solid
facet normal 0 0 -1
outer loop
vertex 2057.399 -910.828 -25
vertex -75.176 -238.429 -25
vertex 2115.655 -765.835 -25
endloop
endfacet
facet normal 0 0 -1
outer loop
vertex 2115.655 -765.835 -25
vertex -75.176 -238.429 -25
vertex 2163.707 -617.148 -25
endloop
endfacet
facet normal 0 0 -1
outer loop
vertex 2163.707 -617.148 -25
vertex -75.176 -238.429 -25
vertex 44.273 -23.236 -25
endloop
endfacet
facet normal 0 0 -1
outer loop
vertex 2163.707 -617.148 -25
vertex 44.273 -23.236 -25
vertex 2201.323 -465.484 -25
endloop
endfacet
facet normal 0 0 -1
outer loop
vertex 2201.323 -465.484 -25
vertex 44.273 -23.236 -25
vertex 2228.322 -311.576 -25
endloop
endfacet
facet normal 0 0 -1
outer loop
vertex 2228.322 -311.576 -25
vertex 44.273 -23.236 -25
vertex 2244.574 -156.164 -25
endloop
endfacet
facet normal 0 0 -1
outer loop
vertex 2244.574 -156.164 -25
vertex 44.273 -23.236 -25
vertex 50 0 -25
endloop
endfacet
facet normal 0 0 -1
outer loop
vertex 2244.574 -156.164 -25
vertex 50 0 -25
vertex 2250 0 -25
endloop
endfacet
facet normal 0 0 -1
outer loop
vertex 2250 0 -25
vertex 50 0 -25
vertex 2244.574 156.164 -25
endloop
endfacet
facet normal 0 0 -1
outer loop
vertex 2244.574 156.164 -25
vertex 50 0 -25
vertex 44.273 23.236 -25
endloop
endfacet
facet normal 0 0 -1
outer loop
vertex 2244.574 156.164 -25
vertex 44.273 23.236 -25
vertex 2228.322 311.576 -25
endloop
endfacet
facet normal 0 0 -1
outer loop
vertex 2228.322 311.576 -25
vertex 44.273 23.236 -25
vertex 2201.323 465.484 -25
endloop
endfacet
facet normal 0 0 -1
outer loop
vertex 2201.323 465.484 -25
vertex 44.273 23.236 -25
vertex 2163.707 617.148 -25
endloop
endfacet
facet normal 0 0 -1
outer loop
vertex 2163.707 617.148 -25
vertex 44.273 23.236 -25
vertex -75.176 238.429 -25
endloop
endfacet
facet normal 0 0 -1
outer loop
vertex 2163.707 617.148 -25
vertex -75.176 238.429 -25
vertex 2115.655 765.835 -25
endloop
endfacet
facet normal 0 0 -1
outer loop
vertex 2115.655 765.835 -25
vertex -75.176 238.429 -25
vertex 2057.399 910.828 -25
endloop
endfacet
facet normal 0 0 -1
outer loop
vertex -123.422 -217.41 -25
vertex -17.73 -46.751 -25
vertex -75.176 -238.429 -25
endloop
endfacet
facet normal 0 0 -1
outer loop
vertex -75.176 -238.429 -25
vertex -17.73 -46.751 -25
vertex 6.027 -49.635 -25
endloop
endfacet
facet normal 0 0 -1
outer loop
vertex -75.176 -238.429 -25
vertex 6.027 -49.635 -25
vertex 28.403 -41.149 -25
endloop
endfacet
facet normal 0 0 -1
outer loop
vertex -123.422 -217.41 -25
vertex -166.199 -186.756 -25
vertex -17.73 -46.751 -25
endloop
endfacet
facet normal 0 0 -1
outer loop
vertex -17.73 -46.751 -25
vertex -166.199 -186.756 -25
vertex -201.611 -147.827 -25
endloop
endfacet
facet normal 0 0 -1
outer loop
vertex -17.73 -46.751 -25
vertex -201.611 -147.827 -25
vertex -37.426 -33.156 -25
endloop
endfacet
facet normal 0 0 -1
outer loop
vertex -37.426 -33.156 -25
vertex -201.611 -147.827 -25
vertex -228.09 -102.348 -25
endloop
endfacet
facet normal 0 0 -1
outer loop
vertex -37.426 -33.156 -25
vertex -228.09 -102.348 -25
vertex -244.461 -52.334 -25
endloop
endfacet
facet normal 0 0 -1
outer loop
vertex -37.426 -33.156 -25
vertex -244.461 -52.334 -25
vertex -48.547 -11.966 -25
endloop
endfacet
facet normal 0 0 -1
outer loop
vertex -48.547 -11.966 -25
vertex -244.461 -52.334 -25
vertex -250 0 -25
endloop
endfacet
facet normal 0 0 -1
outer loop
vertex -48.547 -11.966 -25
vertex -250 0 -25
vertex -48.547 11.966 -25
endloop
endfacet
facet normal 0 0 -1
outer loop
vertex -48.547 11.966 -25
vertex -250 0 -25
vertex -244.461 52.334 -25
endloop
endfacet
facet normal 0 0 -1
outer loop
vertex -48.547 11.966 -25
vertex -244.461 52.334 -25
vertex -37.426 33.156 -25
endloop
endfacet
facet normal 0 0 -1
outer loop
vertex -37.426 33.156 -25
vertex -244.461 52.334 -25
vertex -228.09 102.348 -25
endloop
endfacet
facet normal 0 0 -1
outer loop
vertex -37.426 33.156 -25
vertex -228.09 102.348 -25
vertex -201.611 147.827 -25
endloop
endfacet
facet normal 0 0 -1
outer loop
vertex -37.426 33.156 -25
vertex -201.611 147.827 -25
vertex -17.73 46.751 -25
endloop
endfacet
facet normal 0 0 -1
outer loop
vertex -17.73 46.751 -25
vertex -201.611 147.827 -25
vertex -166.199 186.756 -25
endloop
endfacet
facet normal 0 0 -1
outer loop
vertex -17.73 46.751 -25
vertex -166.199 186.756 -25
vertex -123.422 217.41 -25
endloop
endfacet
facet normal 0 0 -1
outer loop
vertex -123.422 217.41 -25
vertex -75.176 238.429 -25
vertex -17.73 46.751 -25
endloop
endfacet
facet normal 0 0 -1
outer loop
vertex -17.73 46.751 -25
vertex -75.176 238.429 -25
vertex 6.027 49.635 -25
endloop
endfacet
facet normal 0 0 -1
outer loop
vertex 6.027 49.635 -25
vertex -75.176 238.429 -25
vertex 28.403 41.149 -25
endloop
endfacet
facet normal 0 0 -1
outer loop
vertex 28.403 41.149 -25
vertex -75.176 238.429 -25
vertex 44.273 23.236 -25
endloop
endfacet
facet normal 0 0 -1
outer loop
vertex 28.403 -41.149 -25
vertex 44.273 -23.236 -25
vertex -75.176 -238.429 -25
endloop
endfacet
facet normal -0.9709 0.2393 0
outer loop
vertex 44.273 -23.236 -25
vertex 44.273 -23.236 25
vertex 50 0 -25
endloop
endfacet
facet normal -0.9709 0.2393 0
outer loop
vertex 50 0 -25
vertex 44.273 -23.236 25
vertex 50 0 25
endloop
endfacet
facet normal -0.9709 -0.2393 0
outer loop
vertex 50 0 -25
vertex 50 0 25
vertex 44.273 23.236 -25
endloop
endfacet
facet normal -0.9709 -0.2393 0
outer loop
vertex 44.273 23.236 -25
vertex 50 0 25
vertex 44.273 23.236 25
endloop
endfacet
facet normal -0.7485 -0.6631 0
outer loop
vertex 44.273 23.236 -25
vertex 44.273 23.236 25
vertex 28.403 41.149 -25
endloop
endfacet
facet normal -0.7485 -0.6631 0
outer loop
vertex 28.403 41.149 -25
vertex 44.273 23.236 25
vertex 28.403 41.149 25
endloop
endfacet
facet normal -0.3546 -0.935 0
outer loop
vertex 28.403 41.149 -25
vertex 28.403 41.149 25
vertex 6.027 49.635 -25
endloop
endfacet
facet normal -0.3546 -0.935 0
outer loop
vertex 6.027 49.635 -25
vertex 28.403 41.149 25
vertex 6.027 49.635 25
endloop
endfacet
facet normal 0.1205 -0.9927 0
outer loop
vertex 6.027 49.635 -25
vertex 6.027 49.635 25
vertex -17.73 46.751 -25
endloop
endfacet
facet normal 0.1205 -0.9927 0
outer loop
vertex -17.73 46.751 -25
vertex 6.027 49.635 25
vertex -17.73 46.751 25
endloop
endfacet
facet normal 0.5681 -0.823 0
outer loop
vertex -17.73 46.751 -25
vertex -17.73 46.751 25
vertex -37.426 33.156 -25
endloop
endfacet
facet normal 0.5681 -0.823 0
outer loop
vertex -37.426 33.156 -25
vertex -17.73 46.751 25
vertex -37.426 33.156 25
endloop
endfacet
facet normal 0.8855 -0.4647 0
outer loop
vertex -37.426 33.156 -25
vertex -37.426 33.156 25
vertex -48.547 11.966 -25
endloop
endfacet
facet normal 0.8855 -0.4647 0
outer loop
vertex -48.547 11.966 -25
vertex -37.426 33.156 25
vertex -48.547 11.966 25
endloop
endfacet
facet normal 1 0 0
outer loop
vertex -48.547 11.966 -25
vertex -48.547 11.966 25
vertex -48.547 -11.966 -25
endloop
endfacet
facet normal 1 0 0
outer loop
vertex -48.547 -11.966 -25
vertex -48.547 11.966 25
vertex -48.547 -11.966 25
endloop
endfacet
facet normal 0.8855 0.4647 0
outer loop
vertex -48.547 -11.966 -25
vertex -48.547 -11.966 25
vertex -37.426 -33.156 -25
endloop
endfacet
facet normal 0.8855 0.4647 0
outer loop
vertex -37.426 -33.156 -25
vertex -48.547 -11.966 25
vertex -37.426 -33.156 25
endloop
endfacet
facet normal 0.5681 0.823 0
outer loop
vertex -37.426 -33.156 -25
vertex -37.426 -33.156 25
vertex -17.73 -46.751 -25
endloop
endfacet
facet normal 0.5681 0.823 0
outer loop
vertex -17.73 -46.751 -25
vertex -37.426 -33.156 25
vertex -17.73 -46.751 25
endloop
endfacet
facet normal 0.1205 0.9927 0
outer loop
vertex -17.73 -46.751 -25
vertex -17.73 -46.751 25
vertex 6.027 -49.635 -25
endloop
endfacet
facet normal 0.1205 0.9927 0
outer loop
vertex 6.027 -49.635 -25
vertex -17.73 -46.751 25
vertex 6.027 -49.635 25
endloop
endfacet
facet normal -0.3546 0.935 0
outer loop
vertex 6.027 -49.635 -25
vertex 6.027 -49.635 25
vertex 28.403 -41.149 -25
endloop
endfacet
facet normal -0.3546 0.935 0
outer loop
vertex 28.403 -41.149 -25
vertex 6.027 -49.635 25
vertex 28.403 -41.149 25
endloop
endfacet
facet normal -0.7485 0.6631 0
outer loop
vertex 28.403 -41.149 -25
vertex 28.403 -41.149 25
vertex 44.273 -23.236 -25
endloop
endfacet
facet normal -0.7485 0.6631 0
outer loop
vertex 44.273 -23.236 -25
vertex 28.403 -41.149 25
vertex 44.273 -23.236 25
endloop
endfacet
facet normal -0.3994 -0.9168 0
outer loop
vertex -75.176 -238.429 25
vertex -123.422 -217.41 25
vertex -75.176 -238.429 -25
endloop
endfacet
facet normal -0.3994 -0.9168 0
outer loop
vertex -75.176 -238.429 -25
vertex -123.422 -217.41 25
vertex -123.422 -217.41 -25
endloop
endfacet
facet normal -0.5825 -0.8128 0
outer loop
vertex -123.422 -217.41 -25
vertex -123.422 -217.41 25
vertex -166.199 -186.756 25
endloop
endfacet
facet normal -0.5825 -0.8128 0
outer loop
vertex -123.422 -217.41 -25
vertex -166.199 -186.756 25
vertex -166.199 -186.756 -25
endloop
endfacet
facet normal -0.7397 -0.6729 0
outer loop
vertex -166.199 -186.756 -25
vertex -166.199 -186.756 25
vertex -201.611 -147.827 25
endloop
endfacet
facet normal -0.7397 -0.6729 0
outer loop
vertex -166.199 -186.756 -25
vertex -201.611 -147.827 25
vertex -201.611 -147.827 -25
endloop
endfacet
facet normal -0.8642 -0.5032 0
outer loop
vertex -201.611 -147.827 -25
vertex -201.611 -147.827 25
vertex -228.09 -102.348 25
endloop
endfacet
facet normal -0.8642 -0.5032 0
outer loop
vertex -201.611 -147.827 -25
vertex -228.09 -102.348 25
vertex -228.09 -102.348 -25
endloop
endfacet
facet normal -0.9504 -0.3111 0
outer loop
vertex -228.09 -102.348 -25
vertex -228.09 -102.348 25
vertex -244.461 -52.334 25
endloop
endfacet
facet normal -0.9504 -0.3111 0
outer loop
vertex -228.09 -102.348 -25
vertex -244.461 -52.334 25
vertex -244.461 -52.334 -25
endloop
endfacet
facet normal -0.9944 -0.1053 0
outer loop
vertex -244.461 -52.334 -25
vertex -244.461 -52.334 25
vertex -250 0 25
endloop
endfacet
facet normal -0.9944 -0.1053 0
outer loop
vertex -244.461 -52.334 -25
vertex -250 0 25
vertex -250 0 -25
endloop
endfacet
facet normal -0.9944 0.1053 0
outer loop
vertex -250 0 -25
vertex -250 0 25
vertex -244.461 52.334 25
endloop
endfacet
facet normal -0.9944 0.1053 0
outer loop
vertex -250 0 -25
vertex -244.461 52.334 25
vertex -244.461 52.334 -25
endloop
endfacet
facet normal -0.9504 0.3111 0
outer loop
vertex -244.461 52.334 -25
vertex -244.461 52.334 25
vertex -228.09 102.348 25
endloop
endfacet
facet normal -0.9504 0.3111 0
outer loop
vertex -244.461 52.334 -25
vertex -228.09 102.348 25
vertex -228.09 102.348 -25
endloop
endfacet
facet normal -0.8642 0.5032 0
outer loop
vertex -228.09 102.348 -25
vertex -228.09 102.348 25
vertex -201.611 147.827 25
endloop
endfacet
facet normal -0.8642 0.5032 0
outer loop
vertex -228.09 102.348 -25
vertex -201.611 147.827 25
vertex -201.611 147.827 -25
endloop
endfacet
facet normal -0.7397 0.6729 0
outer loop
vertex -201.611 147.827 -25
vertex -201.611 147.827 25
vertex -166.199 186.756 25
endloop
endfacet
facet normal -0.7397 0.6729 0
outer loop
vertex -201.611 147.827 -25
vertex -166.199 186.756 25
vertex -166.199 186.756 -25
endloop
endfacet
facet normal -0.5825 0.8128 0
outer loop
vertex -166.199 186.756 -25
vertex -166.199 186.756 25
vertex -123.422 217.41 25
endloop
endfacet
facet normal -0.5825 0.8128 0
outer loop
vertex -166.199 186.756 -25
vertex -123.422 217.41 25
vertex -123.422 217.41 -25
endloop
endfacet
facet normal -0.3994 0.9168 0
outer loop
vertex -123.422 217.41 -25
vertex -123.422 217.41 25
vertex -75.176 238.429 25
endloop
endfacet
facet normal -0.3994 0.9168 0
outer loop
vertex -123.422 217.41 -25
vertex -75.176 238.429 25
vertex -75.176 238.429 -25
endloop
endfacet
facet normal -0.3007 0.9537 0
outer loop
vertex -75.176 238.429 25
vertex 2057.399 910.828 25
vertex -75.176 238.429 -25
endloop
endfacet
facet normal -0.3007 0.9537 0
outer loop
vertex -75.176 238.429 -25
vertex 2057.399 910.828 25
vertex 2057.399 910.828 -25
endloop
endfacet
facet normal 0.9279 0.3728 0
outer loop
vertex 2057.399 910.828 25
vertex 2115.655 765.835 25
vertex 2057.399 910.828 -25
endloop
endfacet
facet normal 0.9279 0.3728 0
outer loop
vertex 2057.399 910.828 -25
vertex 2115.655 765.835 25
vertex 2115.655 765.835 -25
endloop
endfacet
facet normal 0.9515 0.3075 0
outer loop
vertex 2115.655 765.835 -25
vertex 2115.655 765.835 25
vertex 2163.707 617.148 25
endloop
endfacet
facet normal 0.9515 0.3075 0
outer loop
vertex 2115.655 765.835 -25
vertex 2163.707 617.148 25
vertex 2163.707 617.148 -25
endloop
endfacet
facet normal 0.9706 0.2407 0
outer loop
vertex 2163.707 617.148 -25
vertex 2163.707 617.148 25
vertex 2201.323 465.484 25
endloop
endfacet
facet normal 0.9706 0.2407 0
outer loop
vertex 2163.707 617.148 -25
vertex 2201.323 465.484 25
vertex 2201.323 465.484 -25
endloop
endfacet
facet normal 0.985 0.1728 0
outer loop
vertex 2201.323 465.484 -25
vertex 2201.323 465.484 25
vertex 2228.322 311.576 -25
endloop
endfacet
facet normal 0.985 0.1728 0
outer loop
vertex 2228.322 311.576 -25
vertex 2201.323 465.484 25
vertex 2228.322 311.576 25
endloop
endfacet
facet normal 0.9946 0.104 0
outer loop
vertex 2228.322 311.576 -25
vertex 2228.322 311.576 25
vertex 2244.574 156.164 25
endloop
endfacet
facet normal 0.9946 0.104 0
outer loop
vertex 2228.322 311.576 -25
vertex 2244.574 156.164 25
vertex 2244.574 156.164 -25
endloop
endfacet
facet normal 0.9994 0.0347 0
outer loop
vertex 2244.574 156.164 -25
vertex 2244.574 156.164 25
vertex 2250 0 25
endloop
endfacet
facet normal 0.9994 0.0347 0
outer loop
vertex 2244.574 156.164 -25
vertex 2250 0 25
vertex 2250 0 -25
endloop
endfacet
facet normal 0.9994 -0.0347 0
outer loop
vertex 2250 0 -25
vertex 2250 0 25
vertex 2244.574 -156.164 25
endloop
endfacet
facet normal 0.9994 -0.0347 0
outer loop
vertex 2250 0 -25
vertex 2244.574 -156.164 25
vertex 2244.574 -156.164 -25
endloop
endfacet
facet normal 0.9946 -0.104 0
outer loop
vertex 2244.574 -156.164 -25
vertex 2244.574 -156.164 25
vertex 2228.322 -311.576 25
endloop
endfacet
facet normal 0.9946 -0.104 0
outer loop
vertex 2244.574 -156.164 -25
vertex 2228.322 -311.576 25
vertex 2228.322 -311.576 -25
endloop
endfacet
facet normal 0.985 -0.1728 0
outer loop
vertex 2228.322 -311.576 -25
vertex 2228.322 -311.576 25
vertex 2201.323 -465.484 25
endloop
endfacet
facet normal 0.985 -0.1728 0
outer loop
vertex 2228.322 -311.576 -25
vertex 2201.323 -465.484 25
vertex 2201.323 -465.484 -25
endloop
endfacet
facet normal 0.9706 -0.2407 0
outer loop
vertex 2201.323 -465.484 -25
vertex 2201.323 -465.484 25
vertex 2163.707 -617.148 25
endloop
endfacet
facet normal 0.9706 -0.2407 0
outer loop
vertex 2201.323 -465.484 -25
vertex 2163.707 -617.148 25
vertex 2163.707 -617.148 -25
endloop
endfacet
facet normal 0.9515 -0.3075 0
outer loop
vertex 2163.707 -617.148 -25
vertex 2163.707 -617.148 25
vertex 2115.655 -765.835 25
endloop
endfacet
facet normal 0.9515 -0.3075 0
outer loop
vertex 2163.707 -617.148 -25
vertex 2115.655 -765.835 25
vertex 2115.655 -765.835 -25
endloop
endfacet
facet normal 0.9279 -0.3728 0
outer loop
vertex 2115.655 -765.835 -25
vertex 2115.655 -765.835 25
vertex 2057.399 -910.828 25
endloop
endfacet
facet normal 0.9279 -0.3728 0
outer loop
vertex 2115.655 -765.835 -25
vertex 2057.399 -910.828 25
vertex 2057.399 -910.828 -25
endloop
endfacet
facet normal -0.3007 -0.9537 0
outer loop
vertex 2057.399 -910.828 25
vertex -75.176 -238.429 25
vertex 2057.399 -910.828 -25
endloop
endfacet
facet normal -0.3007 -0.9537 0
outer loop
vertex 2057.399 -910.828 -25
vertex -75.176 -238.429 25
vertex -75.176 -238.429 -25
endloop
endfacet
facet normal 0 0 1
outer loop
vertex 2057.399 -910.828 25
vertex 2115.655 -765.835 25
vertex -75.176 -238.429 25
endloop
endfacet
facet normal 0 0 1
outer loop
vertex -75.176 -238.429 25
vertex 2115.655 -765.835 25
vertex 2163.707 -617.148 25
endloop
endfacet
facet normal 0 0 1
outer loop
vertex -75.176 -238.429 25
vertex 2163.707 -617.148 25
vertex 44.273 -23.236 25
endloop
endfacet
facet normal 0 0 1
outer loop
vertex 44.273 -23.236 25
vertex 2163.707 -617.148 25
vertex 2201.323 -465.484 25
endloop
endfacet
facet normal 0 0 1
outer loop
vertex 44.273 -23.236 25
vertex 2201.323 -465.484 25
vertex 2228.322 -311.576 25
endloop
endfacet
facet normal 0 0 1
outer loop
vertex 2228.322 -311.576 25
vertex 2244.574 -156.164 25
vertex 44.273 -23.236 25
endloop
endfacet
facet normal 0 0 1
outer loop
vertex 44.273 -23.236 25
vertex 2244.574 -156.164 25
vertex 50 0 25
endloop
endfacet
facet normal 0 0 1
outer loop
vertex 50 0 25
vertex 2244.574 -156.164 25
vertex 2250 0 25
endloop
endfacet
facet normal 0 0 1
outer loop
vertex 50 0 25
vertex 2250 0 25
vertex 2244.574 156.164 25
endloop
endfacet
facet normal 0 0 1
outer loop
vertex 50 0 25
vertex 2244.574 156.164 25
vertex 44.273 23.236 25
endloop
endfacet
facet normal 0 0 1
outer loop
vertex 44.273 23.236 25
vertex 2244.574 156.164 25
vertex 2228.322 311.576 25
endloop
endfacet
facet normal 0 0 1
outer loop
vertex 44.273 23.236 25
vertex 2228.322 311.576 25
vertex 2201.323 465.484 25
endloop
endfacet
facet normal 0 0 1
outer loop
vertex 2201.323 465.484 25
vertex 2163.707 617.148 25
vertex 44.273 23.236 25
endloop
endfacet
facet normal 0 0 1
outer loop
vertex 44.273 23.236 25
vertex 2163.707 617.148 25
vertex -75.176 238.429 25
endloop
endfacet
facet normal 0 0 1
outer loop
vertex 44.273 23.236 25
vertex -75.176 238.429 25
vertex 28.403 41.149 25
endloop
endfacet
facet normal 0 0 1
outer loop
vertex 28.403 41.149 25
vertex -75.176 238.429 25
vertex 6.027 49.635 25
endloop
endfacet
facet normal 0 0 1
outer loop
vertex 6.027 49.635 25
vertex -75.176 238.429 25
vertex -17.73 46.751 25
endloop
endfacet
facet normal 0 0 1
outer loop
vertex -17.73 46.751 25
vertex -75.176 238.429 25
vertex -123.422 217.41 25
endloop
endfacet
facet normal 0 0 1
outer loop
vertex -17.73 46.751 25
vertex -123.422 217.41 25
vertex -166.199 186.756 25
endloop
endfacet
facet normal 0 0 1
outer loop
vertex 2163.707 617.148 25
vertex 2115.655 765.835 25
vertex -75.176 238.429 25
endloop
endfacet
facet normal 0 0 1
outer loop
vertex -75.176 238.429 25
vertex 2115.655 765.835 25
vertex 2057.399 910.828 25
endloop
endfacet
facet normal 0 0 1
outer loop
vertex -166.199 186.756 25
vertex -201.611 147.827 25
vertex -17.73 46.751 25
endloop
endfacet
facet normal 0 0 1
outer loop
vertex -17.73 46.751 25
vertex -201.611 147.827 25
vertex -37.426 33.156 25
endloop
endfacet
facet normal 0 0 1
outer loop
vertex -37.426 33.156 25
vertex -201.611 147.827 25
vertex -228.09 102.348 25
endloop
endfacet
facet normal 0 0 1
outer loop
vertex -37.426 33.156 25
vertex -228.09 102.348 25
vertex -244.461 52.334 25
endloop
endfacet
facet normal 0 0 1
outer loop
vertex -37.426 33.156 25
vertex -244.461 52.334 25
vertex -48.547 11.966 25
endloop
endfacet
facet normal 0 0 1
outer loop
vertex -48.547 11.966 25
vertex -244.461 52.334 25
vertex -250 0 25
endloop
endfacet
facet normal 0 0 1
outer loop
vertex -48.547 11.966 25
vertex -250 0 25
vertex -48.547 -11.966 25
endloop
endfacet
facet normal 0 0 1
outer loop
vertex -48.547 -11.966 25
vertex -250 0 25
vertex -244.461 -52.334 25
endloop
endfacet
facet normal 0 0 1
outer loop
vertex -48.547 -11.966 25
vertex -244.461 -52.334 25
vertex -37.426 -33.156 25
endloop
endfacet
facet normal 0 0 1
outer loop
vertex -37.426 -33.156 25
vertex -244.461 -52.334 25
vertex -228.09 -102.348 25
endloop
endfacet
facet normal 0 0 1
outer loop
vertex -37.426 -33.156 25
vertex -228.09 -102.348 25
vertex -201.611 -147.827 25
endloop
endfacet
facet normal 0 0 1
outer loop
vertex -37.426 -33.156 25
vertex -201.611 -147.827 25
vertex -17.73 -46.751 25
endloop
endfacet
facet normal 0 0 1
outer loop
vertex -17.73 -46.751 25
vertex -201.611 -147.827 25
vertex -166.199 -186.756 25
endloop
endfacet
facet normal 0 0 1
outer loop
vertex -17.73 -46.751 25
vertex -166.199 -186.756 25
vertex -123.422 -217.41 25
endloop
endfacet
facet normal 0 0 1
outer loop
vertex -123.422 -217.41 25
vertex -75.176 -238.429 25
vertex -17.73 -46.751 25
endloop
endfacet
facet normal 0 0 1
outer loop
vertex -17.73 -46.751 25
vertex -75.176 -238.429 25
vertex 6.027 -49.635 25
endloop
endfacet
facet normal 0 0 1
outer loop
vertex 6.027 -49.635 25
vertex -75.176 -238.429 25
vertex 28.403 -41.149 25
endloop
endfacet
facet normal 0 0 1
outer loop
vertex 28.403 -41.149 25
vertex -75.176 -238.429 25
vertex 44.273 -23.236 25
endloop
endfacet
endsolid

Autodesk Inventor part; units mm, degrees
ref_plane "YZ Plane" through (0, 0, 0) normal (1, 0, 0) x (0, 1, 0)
ref_plane "XZ Plane" through (0, 0, 0) normal (0, 1, 0) x (-1, 0, 0)
ref_plane "XY Plane" through (0, 0, 0) normal (0, 0, 1) x (1, 0, 0)
sketch "Sketch3" plane through (0, 0, 0) normal (0, 0, 1) x (1, 0, 0)
  circle A0 centre (0, 0) radius 50
  arc A1 (-75.1764, 238.4292) -> (-75.1764, -238.4292) centre (0, 0) ccw
  arc A2 (2057.3995, -910.8278) -> (2057.3995, 910.8278) centre (0, 0) ccw
  line L0 (-75.1764, 238.4292) -> (2057.3995, 910.8278)
  line L1 (-75.1764, -238.4292) -> (2057.3995, -910.8278)
  line L2 (0, 0) -> (2250, 0)
  dimension "d8" = 100
  dimension "d9" = 500
  dimension "d10" = 4500
  dimension "d11" = 35
extrude "Extrusion1" add sketch "Sketch3" along normal mid plane 50
properties part number "pendulumCompound" material "Steel"
